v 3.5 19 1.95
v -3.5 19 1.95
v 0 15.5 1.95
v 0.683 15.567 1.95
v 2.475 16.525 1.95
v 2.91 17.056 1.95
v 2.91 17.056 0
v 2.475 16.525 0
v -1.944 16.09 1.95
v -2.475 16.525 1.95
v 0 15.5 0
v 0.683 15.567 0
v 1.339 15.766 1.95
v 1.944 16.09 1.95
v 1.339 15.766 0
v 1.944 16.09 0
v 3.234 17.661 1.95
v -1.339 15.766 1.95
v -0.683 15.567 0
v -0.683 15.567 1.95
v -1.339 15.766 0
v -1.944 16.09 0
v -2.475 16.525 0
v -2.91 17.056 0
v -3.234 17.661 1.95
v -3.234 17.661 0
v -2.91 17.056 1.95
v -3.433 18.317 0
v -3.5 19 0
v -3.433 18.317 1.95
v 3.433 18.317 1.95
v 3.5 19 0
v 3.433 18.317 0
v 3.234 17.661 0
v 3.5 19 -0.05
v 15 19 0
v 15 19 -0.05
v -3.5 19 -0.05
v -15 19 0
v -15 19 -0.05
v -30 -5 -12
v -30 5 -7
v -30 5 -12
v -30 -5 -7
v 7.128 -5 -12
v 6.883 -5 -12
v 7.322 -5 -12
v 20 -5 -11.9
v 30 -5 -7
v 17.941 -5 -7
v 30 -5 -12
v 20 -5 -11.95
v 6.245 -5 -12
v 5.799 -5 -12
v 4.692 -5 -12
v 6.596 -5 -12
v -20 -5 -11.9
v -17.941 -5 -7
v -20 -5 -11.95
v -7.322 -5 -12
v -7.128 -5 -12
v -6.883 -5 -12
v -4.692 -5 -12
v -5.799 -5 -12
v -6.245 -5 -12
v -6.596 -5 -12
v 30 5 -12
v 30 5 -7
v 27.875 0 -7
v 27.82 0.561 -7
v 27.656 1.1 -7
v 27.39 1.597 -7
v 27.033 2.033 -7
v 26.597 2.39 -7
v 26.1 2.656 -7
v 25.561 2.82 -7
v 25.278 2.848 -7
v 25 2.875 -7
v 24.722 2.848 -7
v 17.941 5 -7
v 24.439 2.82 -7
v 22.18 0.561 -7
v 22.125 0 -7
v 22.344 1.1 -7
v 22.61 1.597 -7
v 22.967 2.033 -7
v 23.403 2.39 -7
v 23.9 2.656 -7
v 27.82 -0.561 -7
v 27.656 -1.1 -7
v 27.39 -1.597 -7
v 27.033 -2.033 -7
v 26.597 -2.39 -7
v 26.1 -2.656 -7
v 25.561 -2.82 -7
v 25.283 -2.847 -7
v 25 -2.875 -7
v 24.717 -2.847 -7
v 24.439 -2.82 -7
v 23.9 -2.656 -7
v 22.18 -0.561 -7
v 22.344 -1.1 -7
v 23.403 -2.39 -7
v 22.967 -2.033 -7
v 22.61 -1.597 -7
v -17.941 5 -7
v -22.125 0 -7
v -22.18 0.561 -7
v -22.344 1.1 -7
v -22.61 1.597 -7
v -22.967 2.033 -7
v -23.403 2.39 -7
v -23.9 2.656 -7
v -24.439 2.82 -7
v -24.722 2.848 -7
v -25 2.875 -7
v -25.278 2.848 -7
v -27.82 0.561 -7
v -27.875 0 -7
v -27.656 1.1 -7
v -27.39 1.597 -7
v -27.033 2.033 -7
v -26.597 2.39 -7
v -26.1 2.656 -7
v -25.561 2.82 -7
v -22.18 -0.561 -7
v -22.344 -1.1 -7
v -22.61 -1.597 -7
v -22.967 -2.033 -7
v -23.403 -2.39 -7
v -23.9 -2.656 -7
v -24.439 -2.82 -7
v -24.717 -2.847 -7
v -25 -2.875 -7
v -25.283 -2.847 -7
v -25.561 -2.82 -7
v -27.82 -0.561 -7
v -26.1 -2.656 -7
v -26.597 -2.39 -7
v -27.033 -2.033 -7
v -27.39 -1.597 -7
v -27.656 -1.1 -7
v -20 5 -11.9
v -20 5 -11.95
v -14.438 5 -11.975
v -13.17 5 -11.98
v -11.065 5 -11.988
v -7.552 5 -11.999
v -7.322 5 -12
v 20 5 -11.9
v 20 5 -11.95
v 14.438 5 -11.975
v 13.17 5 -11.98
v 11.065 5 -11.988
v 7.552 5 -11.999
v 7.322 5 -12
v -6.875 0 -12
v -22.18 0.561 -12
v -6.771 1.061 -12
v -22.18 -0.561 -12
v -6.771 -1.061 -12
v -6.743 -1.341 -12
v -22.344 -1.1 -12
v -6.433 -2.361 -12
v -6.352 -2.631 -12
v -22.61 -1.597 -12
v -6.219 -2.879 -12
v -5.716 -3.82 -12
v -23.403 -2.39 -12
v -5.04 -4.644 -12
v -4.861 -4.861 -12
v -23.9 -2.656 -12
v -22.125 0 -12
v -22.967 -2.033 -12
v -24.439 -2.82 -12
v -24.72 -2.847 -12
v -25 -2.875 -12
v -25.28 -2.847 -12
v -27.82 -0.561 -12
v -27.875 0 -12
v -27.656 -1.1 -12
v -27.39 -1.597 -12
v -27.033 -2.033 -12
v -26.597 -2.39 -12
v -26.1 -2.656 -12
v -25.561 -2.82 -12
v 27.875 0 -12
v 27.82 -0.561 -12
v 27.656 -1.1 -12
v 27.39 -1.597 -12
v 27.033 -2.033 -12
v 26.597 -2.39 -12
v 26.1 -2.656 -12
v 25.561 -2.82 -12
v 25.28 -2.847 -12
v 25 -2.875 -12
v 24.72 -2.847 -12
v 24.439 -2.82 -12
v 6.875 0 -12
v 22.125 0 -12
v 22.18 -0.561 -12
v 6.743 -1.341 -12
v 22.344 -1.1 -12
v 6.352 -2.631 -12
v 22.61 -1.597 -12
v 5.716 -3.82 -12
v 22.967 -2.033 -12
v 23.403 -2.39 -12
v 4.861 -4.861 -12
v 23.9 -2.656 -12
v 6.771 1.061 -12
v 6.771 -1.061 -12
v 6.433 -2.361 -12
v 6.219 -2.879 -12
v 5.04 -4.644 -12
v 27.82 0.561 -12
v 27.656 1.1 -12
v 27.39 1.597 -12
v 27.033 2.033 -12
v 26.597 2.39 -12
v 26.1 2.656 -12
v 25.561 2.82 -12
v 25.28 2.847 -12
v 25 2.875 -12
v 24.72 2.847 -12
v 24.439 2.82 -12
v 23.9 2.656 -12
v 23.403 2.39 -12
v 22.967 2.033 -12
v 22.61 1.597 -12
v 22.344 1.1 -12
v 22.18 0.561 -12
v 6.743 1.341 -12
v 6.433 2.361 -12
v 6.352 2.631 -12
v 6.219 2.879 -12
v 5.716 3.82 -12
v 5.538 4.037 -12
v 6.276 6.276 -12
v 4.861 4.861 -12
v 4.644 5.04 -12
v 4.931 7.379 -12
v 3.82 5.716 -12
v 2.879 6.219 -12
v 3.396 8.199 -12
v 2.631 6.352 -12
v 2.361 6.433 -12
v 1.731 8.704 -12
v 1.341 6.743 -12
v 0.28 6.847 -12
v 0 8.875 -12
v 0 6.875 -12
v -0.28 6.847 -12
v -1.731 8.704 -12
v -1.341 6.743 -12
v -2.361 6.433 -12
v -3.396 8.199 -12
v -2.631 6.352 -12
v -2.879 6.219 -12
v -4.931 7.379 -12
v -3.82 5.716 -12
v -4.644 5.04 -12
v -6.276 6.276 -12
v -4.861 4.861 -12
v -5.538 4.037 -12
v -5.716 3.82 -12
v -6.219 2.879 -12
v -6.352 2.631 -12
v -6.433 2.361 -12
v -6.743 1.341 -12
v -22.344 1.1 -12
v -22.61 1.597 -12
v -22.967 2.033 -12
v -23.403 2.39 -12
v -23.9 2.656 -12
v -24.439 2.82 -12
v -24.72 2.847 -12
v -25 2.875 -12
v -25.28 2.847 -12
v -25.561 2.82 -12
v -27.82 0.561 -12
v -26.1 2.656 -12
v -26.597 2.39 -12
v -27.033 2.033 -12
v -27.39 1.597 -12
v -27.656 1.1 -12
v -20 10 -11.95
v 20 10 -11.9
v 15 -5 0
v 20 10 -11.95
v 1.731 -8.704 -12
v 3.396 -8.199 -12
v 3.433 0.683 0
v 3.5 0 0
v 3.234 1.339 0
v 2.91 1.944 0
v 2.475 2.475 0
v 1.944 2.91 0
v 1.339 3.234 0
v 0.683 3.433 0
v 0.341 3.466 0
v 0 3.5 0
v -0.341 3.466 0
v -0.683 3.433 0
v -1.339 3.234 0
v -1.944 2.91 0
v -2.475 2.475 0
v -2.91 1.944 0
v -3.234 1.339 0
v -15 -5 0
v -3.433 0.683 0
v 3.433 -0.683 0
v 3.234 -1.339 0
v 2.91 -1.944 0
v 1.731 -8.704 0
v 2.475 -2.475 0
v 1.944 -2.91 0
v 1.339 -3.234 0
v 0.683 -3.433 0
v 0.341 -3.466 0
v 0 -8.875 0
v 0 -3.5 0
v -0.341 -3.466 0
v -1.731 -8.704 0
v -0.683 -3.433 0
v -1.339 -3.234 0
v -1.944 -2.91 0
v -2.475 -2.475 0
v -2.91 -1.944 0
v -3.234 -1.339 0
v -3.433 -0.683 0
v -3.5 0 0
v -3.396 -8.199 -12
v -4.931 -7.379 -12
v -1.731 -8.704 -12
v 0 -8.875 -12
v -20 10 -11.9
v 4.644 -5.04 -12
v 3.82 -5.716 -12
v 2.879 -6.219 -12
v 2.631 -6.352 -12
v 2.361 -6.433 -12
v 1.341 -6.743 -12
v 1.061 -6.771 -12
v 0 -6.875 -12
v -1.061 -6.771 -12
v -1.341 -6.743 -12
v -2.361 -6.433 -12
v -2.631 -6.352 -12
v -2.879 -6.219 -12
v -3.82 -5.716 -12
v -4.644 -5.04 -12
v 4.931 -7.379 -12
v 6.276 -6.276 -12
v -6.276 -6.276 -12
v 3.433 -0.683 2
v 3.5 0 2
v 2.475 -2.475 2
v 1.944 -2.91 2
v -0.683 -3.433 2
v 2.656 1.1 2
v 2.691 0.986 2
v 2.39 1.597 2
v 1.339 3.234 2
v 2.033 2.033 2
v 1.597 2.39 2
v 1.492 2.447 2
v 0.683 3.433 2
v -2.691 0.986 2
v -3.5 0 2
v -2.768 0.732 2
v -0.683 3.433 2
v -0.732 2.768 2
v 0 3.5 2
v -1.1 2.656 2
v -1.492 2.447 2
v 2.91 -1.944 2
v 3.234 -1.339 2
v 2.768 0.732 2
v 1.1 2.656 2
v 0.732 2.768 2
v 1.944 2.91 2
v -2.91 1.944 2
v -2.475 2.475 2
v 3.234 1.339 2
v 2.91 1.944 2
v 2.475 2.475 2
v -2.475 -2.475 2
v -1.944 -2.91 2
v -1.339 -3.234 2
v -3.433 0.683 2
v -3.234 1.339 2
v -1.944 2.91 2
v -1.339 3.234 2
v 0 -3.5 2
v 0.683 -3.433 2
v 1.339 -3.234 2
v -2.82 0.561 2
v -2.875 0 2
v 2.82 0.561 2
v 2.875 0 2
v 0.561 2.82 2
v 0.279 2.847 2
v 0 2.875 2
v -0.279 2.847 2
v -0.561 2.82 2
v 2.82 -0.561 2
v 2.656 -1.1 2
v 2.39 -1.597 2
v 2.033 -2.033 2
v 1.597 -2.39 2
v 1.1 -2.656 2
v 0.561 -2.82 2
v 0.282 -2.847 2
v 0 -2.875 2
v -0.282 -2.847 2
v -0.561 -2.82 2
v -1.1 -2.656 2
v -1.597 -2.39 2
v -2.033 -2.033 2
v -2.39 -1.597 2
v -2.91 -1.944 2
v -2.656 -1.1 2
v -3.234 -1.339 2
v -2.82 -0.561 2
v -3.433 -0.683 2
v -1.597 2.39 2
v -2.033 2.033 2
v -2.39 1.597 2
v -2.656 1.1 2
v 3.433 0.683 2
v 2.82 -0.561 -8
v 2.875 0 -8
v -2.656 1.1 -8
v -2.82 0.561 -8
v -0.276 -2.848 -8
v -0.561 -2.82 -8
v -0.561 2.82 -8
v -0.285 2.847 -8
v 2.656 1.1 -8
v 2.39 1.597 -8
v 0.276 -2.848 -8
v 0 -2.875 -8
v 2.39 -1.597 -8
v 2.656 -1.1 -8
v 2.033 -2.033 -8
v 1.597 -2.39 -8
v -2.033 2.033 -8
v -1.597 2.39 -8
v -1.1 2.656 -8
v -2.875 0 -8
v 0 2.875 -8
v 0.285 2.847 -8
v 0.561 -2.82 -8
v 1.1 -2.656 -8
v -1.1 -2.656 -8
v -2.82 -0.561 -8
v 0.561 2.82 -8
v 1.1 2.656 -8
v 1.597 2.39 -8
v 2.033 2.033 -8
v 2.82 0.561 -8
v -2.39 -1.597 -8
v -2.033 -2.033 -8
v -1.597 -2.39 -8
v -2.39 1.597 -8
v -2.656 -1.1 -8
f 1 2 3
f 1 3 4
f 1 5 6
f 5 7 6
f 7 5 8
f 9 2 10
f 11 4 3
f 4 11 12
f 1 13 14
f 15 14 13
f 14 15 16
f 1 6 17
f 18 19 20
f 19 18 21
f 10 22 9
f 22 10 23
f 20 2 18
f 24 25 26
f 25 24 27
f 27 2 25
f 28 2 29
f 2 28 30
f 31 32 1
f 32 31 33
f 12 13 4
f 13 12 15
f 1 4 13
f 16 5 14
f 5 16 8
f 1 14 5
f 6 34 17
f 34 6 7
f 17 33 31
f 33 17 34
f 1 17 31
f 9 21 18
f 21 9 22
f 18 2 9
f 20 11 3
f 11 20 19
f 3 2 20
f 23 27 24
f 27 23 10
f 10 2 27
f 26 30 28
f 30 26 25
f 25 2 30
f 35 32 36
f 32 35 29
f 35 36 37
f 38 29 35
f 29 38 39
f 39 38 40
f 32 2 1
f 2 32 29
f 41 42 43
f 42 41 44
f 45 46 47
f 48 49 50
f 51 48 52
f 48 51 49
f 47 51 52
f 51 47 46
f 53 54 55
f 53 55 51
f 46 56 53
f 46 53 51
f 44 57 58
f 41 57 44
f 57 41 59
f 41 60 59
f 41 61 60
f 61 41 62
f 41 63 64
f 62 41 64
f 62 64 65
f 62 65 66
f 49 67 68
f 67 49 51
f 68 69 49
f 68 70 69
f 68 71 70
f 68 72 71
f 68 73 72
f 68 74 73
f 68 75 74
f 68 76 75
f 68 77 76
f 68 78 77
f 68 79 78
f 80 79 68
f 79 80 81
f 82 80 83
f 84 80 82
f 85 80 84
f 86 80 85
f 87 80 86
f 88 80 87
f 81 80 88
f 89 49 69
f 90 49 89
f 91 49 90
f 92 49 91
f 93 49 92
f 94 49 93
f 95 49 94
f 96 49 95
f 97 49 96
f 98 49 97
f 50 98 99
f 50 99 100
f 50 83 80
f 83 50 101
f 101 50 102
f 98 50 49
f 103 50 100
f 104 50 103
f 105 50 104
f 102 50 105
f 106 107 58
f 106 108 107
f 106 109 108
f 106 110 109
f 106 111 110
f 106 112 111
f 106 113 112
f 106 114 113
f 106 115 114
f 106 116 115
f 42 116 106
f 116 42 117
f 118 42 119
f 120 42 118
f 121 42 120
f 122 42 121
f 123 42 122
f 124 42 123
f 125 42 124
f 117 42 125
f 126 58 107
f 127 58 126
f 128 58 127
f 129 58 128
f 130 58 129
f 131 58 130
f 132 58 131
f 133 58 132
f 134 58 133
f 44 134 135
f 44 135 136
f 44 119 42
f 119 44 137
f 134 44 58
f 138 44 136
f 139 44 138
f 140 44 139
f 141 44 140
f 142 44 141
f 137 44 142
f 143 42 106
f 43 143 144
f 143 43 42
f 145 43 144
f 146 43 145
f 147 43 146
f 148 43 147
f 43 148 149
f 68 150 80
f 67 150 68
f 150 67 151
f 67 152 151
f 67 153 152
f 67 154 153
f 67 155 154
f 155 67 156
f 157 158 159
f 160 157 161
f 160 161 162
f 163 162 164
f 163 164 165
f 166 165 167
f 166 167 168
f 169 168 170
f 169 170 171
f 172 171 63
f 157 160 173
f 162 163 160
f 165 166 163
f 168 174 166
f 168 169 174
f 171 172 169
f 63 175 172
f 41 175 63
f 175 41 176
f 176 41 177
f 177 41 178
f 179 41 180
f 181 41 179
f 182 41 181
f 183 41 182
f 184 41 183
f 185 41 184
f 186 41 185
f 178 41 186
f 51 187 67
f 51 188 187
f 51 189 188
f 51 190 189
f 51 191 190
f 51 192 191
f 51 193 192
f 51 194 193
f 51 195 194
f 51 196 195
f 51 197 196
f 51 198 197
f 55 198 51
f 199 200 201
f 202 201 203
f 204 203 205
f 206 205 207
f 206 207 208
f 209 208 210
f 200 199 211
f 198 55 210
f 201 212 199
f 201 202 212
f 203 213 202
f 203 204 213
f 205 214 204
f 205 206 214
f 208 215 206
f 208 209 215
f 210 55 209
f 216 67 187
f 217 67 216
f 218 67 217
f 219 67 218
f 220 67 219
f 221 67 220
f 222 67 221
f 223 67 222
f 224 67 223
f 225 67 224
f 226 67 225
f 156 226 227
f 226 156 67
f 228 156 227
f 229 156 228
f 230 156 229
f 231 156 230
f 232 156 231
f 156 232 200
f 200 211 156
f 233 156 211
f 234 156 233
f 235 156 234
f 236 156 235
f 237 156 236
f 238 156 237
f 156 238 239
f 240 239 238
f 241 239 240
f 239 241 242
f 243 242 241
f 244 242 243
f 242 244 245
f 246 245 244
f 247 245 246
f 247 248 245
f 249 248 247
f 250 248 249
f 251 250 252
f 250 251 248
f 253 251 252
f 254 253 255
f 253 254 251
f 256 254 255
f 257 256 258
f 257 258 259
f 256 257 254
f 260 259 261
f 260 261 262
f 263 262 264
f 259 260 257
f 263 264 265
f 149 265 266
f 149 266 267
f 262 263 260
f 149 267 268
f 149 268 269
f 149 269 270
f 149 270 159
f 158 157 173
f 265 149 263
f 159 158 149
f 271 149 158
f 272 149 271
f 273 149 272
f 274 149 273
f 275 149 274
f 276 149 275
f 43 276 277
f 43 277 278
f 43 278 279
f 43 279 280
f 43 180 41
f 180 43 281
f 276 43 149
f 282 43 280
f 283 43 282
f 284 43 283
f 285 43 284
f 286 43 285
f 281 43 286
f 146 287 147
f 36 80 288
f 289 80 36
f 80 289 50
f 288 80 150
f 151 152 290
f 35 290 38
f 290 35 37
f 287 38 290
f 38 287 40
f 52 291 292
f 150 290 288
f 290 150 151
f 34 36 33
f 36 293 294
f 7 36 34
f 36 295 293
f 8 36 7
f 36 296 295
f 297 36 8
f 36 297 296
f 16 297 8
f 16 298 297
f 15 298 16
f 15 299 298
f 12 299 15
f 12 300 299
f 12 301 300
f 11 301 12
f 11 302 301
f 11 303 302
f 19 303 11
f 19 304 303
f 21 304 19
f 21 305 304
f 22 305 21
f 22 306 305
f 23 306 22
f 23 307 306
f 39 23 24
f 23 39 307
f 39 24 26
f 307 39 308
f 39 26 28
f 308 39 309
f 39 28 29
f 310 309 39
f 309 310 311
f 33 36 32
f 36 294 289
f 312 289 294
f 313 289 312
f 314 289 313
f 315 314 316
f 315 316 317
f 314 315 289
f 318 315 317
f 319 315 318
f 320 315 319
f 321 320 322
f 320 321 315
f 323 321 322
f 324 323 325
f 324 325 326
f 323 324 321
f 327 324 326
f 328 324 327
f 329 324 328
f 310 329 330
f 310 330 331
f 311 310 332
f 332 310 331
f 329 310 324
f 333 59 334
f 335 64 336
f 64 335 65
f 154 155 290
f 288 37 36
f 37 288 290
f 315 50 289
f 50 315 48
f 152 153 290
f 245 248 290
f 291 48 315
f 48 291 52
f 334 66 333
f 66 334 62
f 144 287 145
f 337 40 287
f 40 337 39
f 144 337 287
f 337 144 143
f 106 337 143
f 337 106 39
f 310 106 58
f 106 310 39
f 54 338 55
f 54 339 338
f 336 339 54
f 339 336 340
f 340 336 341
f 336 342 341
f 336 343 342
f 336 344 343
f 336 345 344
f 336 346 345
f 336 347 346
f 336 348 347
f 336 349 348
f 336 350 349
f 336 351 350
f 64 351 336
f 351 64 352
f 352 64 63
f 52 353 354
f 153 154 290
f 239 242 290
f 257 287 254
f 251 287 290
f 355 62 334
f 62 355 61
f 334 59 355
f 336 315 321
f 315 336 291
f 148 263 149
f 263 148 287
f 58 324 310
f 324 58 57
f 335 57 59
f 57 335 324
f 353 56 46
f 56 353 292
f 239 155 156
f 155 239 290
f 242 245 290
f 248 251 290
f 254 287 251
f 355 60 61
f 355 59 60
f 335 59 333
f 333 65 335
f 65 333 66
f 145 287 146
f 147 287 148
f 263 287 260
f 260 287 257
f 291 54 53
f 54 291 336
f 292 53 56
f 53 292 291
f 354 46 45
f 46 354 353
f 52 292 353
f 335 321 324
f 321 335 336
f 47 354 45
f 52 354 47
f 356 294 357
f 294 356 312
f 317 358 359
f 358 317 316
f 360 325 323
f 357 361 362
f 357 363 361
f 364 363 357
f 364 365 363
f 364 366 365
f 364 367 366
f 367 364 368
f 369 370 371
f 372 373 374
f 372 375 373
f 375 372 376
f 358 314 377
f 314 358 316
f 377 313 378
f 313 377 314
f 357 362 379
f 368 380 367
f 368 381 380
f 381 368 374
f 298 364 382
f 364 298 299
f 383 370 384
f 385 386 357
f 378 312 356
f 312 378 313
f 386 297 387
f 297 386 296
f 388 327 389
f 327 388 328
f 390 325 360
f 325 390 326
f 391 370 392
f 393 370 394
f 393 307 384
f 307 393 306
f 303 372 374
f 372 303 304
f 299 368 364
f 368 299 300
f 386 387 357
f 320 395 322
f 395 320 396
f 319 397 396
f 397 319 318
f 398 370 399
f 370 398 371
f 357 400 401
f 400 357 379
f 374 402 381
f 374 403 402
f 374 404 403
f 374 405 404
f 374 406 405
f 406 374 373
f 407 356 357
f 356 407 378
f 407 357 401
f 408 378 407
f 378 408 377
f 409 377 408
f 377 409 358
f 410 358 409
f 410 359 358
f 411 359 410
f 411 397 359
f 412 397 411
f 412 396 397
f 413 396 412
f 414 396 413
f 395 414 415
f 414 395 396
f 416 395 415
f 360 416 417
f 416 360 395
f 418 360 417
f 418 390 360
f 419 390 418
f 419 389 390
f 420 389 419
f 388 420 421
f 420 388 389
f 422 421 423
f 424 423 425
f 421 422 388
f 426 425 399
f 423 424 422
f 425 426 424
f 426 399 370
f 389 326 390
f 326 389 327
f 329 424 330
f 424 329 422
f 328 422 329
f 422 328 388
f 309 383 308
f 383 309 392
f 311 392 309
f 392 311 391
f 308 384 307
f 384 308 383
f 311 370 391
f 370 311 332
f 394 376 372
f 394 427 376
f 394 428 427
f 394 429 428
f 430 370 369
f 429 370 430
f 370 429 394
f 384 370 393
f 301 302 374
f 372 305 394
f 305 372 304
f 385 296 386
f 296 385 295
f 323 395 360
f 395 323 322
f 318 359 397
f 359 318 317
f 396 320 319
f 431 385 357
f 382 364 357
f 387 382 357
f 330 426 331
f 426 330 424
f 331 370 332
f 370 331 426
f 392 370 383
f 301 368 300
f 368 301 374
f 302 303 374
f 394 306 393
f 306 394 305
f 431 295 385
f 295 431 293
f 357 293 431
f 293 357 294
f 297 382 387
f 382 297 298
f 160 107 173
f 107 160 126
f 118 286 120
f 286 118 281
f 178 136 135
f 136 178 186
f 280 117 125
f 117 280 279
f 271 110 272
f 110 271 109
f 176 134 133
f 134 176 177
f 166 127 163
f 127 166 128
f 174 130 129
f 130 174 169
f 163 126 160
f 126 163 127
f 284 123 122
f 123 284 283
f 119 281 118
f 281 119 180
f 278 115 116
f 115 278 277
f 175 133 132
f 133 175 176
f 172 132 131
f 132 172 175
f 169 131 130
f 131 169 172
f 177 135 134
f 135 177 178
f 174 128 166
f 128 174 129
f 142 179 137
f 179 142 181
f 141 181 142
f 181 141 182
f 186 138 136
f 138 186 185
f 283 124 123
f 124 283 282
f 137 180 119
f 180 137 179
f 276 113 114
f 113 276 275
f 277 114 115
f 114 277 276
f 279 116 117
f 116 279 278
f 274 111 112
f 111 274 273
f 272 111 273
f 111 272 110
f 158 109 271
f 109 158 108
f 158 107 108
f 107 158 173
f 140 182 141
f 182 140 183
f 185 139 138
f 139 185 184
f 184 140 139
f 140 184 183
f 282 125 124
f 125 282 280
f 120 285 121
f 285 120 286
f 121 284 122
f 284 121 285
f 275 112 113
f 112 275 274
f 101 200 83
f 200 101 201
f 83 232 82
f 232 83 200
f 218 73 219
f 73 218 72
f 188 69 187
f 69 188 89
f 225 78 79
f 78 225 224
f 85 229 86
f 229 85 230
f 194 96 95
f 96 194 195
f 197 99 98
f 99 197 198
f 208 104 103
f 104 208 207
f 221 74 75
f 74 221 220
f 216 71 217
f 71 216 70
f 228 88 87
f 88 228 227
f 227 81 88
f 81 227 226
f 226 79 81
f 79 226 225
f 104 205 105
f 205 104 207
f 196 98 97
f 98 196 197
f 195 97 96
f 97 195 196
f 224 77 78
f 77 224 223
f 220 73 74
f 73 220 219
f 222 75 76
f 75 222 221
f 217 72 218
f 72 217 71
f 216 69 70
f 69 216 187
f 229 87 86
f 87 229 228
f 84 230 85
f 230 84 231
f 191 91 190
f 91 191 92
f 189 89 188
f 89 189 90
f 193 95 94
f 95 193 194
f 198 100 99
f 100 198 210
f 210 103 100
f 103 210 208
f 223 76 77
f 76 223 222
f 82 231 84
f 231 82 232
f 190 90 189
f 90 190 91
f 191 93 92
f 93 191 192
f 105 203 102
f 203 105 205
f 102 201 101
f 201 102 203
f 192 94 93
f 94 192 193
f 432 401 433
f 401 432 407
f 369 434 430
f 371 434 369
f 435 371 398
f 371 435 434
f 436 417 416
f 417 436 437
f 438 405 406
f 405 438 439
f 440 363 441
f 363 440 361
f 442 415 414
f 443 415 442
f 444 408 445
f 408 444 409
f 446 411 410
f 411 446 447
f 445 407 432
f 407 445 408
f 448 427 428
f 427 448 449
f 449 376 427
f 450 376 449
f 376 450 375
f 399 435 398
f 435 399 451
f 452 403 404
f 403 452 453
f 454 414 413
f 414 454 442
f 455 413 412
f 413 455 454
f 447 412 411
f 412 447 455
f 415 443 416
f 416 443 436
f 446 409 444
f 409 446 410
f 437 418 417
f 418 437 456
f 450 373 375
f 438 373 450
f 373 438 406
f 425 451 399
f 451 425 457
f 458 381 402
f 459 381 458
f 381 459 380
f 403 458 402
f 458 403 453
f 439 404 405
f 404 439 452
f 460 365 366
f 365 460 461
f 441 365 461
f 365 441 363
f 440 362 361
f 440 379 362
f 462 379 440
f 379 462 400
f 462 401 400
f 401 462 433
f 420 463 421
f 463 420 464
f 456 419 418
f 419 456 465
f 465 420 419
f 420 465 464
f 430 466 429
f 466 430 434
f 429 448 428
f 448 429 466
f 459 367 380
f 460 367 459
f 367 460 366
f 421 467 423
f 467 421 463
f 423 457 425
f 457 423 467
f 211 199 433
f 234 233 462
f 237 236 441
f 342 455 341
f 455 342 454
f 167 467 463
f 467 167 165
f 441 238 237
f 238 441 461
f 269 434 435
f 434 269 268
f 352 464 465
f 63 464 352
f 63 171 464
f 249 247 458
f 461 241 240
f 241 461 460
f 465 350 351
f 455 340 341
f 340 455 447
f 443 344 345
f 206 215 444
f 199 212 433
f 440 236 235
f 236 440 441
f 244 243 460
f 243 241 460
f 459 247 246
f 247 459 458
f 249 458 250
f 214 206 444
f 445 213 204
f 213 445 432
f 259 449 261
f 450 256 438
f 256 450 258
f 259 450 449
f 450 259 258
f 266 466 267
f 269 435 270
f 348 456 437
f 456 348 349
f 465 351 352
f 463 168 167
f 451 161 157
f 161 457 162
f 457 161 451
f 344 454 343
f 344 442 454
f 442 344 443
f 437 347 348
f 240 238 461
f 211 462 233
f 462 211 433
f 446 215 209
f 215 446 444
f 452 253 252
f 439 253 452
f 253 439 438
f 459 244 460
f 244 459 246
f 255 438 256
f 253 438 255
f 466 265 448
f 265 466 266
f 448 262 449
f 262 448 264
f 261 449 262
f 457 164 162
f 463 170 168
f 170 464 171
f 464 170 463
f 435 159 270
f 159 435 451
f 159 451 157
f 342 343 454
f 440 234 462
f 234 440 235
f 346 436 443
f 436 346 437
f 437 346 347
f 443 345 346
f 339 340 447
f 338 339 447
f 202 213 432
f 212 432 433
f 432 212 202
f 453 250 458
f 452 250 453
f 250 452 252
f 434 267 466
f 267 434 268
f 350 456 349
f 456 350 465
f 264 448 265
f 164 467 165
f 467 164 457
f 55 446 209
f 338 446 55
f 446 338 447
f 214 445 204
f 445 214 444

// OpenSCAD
use <utilities.scad>;

light_hole = [-25,-12,0];
light_hole_r = 5/2*1.15;
rack_hole = [0,0,0];
rack_halfhole = [0,0,-19];
rack_hole_r = 7/2*1;
d=0.05;
$fn=32;

rotate([90,0,0])
difference(){
    union(){
        translate(light_hole - [5,0,5]) cube([-2*light_hole[0]+10, 5, 10]);
        hull(){
            translate(light_hole + [5,d,-10]) cube([-2*light_hole[0]-10,d,15]);
            translate([-15,-d,rack_halfhole[2]]) cube([30,d,-rack_halfhole[2]+5]);
            translate(rack_hole) rotate([90,0,0]) cylinder(r=light_hole_r+6, h=rack_hole[1]-light_hole[1]);
        }
        translate(rack_hole) rotate([90,0,0]) cylinder(r=rack_hole_r, h=4, center=true);
        translate(rack_halfhole-[0,d,0]) intersection(){
            rotate([-90,0,0]) cylinder(r=rack_hole_r, h=2);
            cylinder(r=999,h=999,$fn=8);
        }
    }
    
    reflect([1,0,0]) translate(light_hole) rotate([90,0,0]) cylinder(r=light_hole_r,h=999,center=true);
    
    translate(rack_hole) rotate([90,0,0]) cylinder(r=light_hole_r, h=999, center=true);
    
    translate([rack_hole[0],light_hole[1],rack_hole[0]]) rotate([-90,0,0]) cylinder(r1=light_hole_r+8, r2=light_hole_r, h=8,center=true);
}
